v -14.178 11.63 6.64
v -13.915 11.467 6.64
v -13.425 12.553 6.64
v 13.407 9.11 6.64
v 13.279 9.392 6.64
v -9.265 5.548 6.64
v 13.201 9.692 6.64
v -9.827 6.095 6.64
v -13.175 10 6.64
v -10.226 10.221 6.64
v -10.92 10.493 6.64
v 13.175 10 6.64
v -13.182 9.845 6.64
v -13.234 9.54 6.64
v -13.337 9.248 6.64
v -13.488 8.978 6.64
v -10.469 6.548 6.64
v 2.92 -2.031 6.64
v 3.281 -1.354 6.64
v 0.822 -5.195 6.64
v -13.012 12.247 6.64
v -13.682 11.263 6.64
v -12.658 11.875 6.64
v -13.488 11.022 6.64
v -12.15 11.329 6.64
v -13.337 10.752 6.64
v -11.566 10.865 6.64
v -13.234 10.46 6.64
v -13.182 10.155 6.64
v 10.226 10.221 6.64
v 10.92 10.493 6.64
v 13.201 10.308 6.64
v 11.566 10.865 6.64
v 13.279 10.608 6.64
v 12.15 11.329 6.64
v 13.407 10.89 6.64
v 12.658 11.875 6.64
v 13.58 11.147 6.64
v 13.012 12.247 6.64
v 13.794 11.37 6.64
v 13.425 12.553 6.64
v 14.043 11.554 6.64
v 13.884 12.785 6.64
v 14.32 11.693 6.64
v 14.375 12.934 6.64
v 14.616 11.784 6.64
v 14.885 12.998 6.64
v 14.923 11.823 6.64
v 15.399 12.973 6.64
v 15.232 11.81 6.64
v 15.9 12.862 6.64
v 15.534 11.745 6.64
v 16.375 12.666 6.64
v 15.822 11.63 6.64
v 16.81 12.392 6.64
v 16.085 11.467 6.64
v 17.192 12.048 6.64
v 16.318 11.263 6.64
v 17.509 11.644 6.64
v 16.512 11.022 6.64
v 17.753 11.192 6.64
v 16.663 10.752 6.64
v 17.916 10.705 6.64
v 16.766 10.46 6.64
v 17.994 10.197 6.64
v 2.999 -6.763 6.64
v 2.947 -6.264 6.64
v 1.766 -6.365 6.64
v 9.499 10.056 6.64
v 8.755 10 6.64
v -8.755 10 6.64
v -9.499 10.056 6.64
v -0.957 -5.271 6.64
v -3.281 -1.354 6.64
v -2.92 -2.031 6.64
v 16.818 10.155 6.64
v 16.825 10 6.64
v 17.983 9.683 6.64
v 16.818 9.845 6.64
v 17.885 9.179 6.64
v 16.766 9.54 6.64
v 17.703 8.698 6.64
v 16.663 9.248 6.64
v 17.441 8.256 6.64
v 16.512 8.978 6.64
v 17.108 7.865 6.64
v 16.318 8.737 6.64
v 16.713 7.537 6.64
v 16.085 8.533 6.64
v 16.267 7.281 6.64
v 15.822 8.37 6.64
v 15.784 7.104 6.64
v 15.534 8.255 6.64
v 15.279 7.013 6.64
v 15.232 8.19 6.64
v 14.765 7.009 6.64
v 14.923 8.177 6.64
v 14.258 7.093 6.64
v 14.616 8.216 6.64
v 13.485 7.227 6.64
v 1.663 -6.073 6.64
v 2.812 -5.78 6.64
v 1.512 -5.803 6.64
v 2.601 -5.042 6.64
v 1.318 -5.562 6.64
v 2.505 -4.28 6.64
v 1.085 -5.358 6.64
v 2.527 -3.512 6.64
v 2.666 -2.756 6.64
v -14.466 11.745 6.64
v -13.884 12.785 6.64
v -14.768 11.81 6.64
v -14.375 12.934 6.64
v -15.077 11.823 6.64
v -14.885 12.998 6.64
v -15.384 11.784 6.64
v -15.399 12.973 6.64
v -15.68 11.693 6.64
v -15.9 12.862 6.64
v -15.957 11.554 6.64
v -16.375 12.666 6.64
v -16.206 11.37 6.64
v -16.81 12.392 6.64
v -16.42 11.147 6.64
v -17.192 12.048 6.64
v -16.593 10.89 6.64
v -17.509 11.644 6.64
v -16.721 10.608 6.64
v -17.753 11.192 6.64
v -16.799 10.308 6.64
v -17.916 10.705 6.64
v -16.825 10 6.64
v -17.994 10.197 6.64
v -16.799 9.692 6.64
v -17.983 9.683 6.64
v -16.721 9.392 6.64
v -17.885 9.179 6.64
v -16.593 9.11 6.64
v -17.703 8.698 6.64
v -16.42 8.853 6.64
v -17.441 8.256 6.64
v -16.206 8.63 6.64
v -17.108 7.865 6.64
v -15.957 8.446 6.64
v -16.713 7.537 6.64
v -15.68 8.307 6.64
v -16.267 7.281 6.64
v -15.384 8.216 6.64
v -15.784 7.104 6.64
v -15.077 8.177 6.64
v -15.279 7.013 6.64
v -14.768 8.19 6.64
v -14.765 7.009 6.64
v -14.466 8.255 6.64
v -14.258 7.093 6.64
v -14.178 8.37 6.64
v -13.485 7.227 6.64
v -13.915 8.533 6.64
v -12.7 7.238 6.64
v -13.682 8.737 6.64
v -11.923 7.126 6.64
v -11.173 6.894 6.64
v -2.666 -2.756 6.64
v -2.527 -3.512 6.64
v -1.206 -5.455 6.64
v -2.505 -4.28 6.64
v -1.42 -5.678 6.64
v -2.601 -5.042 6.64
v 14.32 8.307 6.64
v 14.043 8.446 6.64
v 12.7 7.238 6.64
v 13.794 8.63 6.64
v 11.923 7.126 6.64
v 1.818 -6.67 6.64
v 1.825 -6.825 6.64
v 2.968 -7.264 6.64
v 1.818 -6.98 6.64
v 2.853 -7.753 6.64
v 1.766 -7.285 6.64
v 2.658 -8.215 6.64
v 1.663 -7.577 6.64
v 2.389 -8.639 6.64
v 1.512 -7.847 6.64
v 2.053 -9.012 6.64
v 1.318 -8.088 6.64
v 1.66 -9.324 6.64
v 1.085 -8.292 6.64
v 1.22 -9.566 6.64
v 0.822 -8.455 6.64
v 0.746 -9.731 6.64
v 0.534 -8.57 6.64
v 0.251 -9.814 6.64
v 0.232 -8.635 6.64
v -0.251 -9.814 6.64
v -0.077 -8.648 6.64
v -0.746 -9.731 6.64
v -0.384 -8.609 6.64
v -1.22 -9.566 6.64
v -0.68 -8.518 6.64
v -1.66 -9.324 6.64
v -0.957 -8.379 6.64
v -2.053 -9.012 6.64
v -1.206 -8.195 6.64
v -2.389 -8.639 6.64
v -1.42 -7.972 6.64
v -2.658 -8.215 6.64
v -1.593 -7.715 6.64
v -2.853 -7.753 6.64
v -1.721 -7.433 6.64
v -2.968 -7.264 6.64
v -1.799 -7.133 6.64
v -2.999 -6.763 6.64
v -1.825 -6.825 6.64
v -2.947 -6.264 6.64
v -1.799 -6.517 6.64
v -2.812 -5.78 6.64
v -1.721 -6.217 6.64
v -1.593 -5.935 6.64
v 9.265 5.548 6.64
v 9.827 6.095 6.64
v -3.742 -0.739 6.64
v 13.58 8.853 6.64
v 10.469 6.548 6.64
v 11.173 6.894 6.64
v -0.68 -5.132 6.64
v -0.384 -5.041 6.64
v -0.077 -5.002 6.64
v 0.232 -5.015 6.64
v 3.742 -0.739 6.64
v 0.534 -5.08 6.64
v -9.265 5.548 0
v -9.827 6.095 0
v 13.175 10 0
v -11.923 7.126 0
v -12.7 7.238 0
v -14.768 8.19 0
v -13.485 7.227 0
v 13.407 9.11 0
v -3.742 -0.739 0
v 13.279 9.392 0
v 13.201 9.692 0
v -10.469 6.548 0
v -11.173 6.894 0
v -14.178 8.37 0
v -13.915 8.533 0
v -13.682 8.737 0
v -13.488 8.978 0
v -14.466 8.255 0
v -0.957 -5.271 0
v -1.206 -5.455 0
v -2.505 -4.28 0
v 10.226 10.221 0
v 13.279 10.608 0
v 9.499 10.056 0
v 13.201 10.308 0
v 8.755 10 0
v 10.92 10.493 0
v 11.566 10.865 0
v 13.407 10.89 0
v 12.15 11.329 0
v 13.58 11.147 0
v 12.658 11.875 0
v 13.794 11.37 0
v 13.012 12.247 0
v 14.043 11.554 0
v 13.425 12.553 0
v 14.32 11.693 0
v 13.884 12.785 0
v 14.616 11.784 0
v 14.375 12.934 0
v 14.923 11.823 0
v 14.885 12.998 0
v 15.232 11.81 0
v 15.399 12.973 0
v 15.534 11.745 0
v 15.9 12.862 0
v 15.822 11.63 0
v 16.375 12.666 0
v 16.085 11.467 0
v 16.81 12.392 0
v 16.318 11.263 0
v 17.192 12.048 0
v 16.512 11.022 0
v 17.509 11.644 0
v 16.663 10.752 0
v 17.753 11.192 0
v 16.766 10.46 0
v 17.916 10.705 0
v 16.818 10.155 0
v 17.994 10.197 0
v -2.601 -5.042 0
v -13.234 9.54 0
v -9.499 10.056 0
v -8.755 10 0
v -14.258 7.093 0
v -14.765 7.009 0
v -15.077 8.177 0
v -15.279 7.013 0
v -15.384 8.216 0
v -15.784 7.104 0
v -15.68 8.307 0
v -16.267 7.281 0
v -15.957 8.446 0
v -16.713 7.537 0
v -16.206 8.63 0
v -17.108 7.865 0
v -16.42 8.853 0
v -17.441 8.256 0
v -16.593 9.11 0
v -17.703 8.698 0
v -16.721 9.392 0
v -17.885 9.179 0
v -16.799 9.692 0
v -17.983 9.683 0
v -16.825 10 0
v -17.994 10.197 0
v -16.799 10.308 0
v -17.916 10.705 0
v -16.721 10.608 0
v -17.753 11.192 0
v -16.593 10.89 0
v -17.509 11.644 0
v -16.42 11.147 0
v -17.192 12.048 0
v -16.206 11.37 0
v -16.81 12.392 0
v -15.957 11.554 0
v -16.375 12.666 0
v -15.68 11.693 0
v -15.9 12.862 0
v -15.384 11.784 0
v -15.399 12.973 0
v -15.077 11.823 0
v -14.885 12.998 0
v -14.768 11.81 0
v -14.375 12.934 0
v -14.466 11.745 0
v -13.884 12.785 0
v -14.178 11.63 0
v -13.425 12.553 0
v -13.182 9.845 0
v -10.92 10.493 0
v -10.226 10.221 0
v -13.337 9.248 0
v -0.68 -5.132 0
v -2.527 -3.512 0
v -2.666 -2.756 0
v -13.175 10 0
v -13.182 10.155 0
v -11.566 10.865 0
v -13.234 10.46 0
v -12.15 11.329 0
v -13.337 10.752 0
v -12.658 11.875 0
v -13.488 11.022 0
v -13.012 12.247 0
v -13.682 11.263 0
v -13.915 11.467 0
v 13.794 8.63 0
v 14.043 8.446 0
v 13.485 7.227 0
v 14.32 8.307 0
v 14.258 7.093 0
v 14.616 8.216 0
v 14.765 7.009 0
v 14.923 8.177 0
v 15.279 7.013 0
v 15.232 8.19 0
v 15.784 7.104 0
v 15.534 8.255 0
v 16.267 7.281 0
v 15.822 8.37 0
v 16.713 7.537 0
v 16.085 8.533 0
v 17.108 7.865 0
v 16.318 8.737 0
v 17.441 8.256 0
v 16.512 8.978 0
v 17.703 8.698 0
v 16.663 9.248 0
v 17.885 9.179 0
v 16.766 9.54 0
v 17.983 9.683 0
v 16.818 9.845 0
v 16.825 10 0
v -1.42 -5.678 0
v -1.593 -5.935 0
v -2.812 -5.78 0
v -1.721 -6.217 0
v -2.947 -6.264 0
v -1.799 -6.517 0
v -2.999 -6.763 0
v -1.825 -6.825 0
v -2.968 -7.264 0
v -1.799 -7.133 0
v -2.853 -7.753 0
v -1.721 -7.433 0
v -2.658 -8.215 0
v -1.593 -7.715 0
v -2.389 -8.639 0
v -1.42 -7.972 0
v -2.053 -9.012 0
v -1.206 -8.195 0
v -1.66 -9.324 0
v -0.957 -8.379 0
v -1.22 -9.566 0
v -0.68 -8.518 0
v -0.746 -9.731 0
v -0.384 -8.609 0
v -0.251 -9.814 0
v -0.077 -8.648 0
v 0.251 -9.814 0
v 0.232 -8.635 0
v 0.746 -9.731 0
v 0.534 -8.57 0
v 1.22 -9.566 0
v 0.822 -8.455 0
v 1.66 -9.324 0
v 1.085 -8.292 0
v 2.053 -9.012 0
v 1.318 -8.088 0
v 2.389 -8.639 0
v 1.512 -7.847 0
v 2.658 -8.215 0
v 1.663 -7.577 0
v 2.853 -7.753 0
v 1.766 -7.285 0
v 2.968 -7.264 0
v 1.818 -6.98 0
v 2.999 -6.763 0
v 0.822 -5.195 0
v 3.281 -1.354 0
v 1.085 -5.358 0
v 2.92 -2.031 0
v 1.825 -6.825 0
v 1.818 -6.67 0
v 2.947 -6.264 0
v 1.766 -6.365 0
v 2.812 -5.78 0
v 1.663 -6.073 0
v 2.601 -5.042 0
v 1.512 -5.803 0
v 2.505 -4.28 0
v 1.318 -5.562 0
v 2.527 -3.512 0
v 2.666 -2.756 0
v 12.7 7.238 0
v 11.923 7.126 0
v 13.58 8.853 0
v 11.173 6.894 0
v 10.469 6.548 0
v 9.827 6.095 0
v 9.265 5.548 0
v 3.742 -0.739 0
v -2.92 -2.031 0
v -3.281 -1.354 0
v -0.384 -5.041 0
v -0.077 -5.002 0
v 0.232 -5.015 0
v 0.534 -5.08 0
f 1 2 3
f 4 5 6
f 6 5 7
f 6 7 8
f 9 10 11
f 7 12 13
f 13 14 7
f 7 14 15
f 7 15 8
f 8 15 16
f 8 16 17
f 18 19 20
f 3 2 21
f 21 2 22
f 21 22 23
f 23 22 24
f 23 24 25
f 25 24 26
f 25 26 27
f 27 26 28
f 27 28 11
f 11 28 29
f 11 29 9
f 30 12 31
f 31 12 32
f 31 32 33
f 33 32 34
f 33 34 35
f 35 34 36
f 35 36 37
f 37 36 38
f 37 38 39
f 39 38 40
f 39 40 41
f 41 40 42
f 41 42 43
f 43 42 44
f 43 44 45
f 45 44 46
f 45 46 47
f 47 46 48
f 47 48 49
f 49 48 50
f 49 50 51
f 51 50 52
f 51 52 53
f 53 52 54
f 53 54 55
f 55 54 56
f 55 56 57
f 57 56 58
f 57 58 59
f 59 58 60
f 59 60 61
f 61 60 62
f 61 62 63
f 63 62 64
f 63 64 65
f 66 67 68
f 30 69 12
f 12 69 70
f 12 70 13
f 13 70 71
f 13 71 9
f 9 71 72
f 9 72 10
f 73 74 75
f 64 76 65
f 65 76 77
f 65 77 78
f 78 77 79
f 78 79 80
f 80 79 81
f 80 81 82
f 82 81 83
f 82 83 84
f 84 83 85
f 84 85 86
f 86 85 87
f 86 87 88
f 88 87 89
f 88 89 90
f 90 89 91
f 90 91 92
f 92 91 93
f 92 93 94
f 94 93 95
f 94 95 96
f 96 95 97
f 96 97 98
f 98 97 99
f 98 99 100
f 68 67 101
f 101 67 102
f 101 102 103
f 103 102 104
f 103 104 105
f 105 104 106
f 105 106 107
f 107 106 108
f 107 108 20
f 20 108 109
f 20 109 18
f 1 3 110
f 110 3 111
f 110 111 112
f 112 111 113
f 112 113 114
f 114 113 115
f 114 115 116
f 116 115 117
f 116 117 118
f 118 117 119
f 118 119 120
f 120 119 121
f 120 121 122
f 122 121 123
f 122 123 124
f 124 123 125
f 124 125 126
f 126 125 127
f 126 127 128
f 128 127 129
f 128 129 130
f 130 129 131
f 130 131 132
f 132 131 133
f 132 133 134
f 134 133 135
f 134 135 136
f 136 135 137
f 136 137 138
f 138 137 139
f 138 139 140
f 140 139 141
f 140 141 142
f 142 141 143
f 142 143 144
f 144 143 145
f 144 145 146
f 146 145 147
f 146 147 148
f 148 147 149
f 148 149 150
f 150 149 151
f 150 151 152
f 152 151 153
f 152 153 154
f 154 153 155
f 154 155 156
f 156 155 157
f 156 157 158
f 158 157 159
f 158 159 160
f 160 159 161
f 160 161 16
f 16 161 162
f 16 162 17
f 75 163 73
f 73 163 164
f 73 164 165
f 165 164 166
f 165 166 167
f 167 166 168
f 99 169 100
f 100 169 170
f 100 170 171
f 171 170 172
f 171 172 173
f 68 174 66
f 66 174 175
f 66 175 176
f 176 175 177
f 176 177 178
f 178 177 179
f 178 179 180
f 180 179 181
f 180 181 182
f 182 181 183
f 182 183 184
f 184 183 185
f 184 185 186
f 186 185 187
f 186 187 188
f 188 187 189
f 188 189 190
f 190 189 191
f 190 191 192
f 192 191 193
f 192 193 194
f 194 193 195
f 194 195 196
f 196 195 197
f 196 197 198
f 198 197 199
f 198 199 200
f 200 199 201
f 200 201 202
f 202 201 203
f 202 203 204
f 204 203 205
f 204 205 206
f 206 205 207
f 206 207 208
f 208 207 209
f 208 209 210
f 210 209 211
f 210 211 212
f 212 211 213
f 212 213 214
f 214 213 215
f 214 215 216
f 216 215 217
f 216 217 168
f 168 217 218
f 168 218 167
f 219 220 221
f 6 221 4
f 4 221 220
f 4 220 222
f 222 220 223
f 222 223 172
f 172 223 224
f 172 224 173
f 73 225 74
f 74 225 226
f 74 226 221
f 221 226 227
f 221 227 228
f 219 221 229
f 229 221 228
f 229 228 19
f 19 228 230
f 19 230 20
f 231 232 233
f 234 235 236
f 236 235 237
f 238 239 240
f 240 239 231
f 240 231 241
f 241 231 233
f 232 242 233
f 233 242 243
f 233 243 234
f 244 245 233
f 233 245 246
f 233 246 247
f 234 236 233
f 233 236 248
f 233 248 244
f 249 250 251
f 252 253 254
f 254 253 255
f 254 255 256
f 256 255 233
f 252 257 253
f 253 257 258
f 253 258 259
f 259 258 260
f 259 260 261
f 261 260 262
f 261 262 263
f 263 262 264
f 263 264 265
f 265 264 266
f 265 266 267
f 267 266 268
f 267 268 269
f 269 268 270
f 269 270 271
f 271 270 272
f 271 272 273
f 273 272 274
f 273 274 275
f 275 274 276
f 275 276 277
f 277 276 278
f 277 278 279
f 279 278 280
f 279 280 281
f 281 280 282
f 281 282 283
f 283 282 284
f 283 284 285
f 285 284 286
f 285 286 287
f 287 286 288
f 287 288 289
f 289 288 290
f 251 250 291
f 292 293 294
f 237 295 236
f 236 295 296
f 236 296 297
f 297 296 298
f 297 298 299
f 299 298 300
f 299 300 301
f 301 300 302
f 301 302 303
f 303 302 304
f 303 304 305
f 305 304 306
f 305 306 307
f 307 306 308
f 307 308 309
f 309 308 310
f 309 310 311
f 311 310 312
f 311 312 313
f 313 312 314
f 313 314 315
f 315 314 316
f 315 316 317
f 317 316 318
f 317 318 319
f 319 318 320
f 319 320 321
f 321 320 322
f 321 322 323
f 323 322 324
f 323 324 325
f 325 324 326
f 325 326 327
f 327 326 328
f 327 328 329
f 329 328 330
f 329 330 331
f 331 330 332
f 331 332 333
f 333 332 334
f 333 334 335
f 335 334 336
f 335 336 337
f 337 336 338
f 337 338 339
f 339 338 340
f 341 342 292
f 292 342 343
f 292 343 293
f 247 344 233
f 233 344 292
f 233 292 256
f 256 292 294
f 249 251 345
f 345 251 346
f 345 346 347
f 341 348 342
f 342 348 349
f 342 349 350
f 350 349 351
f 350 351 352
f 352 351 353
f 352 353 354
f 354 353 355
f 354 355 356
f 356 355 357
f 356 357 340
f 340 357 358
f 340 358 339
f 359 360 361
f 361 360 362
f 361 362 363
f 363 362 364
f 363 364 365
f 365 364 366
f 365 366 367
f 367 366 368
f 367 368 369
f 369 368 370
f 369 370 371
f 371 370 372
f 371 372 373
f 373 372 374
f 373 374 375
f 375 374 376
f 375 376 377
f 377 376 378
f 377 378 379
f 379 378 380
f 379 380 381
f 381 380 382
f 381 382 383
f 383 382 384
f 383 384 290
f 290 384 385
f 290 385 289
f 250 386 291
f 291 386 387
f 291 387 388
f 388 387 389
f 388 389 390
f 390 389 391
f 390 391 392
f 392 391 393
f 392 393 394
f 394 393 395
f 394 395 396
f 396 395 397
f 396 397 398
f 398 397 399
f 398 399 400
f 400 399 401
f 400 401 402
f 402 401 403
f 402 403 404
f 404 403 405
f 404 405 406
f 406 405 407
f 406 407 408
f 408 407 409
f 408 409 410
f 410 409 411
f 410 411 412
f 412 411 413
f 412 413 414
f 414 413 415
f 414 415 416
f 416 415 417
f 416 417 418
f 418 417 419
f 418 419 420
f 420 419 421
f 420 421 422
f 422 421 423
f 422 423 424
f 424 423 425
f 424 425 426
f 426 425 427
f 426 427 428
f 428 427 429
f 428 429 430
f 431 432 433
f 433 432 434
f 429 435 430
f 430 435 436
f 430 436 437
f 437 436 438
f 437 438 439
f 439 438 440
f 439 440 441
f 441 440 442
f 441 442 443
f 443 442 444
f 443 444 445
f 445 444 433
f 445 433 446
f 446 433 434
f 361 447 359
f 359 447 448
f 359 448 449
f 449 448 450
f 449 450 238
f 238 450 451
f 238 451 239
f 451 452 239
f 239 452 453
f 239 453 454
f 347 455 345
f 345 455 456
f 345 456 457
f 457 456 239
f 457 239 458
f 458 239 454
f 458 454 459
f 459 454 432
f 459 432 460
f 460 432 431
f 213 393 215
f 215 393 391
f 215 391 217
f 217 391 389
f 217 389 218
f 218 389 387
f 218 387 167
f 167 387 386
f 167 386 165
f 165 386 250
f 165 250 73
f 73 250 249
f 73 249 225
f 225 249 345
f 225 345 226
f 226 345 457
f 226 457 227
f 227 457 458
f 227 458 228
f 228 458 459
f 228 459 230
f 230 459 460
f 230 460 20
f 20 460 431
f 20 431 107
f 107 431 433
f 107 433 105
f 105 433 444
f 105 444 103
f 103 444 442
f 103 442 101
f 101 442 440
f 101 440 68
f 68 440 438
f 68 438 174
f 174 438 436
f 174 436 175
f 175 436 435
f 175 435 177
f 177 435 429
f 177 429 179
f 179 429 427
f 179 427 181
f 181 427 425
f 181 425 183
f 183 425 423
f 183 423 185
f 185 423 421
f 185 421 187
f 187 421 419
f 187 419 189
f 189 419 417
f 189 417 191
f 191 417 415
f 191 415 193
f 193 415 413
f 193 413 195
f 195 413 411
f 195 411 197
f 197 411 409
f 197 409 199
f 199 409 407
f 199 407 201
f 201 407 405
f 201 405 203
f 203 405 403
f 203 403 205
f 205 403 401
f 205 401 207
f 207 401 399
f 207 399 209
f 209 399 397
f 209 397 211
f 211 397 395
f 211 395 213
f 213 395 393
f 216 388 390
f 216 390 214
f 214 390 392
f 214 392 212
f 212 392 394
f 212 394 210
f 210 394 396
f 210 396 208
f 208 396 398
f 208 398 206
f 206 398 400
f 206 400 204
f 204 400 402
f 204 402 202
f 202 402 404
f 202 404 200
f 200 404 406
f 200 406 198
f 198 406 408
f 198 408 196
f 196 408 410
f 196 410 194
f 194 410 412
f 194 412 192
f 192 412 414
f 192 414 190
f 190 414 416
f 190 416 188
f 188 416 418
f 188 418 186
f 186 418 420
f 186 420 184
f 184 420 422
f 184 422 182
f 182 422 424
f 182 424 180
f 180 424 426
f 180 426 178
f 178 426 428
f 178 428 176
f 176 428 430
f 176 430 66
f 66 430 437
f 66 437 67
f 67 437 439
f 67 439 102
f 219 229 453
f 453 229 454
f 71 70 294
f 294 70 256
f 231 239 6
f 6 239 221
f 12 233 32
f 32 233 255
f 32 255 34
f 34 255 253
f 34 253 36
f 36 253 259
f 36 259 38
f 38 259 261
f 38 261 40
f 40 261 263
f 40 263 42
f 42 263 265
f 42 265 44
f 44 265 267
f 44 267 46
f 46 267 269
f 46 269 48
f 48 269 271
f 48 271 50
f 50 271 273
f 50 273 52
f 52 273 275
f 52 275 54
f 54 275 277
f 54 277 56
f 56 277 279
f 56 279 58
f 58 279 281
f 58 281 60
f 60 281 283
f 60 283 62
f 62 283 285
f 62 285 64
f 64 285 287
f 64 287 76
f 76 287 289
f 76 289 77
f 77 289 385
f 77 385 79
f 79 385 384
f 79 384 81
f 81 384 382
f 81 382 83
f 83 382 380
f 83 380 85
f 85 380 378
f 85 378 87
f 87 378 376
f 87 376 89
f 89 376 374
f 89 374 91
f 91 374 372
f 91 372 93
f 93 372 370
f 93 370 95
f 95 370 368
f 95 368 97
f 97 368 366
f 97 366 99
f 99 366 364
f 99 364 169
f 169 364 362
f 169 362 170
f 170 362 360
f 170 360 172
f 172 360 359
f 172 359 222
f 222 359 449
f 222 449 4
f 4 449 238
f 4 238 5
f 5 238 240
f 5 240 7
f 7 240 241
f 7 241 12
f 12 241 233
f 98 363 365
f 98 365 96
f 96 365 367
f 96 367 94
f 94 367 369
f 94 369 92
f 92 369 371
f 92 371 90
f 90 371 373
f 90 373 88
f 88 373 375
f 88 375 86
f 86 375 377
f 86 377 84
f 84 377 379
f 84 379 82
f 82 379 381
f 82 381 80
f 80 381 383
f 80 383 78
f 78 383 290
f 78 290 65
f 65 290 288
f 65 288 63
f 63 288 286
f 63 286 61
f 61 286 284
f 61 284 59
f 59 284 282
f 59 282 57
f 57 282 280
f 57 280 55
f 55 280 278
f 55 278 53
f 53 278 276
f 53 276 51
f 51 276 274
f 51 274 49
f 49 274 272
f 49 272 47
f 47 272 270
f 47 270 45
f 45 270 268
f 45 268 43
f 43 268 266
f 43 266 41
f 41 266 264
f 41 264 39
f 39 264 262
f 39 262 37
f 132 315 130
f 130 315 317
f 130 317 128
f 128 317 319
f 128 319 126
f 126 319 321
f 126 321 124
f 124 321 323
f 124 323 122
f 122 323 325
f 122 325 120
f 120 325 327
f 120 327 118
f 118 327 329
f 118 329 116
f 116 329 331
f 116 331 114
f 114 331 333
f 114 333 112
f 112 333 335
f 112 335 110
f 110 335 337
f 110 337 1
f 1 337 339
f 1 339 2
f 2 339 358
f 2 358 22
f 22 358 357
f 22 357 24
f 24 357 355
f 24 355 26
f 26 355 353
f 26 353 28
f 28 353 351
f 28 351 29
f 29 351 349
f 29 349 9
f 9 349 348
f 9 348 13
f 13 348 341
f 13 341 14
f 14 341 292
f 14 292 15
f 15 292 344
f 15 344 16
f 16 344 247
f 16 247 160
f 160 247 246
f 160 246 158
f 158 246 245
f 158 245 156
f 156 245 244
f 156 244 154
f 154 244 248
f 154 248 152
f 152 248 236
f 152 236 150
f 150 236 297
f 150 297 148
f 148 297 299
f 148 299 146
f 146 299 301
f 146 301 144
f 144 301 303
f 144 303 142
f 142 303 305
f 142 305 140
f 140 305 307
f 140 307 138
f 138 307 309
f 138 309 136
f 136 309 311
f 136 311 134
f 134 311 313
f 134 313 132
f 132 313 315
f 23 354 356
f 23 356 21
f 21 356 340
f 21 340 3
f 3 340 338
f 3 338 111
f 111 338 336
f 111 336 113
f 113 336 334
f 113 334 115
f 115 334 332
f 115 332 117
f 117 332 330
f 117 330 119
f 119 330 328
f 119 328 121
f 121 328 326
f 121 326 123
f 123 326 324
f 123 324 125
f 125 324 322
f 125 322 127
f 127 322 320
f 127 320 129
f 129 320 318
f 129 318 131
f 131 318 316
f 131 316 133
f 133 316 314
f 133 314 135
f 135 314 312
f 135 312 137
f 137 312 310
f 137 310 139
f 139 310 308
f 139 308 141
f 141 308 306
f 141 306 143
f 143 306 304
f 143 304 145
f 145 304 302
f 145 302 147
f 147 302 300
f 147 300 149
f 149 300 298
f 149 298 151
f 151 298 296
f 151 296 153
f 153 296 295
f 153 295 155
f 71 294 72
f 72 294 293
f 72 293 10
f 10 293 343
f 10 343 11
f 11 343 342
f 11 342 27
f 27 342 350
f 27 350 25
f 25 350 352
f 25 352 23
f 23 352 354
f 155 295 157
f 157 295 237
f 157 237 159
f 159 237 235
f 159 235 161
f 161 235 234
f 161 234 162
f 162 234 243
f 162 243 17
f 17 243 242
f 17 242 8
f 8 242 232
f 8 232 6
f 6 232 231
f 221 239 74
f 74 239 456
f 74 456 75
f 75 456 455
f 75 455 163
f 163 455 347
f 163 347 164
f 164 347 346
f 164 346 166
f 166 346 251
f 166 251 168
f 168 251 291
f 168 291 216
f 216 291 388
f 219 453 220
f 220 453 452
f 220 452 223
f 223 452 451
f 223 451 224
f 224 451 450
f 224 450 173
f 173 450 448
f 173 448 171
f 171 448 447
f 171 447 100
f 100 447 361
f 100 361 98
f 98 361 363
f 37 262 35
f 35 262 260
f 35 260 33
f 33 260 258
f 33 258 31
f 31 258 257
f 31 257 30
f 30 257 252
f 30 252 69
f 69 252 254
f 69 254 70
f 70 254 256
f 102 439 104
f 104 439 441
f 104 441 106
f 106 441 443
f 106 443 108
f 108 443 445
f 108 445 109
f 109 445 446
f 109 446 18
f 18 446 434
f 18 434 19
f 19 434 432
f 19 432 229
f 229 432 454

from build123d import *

# Parameters (mm, degrees)
ESQUISSE2_R        = 3
ESQUISSE2_R_2      = 1.825
BOSS_EXTRU_1_DEPTH = 6.64
CONG_1_R           = 5


with BuildPart() as part:
    # Esquisse2 → Boss.-Extru.1 (new body)
    # profile 1 of 4: a face of its own
    with BuildSketch(Plane.XY):
        with Locations((-15, 10)):
            Circle(ESQUISSE2_R)
        with Locations(Location((-15, 10, 0), (0, 0, 180))):
            Circle(ESQUISSE2_R_2, mode=Mode.SUBTRACT)
    # profile 2 of 4: a face of its own
    with BuildSketch(Plane.XY):
        with Locations((15, 10)):
            Circle(ESQUISSE2_R)
        with Locations(Location((15, 10, 0), (0, 0, 180))):
            Circle(ESQUISSE2_R_2, mode=Mode.SUBTRACT)
    # profile 3 of 4: a face of its own
    with BuildSketch(Plane.XY):
        with Locations((0, -6.825)):
            Circle(ESQUISSE2_R)
        with Locations(Location((0, -6.825, 0), (0, 0, 180))):
            Circle(ESQUISSE2_R_2, mode=Mode.SUBTRACT)
    # profile 4 of 4: a face of its own
    with BuildSketch(Plane.XY):
        Polygon((-13.175, 10), (13.175, 10), (0, -5), align=None)
    extrude(amount=BOSS_EXTRU_1_DEPTH)

    # Congé1
    cong_1_edges = [part.edges().sort_by_distance(p)[0] for p in [
        (-12.208908932, 8.900086071, 3.32),
        (-12, 10, 3.32),
        (12, 10, 3.32),
        (12.208908932, 8.900086071, 3.32),
        (0.908352526, -3.965822551, 3.32),
        (-0.908352526, -3.965822551, 3.32),
    ]]
    fillet(cong_1_edges, radius=CONG_1_R)


solid = part.part
